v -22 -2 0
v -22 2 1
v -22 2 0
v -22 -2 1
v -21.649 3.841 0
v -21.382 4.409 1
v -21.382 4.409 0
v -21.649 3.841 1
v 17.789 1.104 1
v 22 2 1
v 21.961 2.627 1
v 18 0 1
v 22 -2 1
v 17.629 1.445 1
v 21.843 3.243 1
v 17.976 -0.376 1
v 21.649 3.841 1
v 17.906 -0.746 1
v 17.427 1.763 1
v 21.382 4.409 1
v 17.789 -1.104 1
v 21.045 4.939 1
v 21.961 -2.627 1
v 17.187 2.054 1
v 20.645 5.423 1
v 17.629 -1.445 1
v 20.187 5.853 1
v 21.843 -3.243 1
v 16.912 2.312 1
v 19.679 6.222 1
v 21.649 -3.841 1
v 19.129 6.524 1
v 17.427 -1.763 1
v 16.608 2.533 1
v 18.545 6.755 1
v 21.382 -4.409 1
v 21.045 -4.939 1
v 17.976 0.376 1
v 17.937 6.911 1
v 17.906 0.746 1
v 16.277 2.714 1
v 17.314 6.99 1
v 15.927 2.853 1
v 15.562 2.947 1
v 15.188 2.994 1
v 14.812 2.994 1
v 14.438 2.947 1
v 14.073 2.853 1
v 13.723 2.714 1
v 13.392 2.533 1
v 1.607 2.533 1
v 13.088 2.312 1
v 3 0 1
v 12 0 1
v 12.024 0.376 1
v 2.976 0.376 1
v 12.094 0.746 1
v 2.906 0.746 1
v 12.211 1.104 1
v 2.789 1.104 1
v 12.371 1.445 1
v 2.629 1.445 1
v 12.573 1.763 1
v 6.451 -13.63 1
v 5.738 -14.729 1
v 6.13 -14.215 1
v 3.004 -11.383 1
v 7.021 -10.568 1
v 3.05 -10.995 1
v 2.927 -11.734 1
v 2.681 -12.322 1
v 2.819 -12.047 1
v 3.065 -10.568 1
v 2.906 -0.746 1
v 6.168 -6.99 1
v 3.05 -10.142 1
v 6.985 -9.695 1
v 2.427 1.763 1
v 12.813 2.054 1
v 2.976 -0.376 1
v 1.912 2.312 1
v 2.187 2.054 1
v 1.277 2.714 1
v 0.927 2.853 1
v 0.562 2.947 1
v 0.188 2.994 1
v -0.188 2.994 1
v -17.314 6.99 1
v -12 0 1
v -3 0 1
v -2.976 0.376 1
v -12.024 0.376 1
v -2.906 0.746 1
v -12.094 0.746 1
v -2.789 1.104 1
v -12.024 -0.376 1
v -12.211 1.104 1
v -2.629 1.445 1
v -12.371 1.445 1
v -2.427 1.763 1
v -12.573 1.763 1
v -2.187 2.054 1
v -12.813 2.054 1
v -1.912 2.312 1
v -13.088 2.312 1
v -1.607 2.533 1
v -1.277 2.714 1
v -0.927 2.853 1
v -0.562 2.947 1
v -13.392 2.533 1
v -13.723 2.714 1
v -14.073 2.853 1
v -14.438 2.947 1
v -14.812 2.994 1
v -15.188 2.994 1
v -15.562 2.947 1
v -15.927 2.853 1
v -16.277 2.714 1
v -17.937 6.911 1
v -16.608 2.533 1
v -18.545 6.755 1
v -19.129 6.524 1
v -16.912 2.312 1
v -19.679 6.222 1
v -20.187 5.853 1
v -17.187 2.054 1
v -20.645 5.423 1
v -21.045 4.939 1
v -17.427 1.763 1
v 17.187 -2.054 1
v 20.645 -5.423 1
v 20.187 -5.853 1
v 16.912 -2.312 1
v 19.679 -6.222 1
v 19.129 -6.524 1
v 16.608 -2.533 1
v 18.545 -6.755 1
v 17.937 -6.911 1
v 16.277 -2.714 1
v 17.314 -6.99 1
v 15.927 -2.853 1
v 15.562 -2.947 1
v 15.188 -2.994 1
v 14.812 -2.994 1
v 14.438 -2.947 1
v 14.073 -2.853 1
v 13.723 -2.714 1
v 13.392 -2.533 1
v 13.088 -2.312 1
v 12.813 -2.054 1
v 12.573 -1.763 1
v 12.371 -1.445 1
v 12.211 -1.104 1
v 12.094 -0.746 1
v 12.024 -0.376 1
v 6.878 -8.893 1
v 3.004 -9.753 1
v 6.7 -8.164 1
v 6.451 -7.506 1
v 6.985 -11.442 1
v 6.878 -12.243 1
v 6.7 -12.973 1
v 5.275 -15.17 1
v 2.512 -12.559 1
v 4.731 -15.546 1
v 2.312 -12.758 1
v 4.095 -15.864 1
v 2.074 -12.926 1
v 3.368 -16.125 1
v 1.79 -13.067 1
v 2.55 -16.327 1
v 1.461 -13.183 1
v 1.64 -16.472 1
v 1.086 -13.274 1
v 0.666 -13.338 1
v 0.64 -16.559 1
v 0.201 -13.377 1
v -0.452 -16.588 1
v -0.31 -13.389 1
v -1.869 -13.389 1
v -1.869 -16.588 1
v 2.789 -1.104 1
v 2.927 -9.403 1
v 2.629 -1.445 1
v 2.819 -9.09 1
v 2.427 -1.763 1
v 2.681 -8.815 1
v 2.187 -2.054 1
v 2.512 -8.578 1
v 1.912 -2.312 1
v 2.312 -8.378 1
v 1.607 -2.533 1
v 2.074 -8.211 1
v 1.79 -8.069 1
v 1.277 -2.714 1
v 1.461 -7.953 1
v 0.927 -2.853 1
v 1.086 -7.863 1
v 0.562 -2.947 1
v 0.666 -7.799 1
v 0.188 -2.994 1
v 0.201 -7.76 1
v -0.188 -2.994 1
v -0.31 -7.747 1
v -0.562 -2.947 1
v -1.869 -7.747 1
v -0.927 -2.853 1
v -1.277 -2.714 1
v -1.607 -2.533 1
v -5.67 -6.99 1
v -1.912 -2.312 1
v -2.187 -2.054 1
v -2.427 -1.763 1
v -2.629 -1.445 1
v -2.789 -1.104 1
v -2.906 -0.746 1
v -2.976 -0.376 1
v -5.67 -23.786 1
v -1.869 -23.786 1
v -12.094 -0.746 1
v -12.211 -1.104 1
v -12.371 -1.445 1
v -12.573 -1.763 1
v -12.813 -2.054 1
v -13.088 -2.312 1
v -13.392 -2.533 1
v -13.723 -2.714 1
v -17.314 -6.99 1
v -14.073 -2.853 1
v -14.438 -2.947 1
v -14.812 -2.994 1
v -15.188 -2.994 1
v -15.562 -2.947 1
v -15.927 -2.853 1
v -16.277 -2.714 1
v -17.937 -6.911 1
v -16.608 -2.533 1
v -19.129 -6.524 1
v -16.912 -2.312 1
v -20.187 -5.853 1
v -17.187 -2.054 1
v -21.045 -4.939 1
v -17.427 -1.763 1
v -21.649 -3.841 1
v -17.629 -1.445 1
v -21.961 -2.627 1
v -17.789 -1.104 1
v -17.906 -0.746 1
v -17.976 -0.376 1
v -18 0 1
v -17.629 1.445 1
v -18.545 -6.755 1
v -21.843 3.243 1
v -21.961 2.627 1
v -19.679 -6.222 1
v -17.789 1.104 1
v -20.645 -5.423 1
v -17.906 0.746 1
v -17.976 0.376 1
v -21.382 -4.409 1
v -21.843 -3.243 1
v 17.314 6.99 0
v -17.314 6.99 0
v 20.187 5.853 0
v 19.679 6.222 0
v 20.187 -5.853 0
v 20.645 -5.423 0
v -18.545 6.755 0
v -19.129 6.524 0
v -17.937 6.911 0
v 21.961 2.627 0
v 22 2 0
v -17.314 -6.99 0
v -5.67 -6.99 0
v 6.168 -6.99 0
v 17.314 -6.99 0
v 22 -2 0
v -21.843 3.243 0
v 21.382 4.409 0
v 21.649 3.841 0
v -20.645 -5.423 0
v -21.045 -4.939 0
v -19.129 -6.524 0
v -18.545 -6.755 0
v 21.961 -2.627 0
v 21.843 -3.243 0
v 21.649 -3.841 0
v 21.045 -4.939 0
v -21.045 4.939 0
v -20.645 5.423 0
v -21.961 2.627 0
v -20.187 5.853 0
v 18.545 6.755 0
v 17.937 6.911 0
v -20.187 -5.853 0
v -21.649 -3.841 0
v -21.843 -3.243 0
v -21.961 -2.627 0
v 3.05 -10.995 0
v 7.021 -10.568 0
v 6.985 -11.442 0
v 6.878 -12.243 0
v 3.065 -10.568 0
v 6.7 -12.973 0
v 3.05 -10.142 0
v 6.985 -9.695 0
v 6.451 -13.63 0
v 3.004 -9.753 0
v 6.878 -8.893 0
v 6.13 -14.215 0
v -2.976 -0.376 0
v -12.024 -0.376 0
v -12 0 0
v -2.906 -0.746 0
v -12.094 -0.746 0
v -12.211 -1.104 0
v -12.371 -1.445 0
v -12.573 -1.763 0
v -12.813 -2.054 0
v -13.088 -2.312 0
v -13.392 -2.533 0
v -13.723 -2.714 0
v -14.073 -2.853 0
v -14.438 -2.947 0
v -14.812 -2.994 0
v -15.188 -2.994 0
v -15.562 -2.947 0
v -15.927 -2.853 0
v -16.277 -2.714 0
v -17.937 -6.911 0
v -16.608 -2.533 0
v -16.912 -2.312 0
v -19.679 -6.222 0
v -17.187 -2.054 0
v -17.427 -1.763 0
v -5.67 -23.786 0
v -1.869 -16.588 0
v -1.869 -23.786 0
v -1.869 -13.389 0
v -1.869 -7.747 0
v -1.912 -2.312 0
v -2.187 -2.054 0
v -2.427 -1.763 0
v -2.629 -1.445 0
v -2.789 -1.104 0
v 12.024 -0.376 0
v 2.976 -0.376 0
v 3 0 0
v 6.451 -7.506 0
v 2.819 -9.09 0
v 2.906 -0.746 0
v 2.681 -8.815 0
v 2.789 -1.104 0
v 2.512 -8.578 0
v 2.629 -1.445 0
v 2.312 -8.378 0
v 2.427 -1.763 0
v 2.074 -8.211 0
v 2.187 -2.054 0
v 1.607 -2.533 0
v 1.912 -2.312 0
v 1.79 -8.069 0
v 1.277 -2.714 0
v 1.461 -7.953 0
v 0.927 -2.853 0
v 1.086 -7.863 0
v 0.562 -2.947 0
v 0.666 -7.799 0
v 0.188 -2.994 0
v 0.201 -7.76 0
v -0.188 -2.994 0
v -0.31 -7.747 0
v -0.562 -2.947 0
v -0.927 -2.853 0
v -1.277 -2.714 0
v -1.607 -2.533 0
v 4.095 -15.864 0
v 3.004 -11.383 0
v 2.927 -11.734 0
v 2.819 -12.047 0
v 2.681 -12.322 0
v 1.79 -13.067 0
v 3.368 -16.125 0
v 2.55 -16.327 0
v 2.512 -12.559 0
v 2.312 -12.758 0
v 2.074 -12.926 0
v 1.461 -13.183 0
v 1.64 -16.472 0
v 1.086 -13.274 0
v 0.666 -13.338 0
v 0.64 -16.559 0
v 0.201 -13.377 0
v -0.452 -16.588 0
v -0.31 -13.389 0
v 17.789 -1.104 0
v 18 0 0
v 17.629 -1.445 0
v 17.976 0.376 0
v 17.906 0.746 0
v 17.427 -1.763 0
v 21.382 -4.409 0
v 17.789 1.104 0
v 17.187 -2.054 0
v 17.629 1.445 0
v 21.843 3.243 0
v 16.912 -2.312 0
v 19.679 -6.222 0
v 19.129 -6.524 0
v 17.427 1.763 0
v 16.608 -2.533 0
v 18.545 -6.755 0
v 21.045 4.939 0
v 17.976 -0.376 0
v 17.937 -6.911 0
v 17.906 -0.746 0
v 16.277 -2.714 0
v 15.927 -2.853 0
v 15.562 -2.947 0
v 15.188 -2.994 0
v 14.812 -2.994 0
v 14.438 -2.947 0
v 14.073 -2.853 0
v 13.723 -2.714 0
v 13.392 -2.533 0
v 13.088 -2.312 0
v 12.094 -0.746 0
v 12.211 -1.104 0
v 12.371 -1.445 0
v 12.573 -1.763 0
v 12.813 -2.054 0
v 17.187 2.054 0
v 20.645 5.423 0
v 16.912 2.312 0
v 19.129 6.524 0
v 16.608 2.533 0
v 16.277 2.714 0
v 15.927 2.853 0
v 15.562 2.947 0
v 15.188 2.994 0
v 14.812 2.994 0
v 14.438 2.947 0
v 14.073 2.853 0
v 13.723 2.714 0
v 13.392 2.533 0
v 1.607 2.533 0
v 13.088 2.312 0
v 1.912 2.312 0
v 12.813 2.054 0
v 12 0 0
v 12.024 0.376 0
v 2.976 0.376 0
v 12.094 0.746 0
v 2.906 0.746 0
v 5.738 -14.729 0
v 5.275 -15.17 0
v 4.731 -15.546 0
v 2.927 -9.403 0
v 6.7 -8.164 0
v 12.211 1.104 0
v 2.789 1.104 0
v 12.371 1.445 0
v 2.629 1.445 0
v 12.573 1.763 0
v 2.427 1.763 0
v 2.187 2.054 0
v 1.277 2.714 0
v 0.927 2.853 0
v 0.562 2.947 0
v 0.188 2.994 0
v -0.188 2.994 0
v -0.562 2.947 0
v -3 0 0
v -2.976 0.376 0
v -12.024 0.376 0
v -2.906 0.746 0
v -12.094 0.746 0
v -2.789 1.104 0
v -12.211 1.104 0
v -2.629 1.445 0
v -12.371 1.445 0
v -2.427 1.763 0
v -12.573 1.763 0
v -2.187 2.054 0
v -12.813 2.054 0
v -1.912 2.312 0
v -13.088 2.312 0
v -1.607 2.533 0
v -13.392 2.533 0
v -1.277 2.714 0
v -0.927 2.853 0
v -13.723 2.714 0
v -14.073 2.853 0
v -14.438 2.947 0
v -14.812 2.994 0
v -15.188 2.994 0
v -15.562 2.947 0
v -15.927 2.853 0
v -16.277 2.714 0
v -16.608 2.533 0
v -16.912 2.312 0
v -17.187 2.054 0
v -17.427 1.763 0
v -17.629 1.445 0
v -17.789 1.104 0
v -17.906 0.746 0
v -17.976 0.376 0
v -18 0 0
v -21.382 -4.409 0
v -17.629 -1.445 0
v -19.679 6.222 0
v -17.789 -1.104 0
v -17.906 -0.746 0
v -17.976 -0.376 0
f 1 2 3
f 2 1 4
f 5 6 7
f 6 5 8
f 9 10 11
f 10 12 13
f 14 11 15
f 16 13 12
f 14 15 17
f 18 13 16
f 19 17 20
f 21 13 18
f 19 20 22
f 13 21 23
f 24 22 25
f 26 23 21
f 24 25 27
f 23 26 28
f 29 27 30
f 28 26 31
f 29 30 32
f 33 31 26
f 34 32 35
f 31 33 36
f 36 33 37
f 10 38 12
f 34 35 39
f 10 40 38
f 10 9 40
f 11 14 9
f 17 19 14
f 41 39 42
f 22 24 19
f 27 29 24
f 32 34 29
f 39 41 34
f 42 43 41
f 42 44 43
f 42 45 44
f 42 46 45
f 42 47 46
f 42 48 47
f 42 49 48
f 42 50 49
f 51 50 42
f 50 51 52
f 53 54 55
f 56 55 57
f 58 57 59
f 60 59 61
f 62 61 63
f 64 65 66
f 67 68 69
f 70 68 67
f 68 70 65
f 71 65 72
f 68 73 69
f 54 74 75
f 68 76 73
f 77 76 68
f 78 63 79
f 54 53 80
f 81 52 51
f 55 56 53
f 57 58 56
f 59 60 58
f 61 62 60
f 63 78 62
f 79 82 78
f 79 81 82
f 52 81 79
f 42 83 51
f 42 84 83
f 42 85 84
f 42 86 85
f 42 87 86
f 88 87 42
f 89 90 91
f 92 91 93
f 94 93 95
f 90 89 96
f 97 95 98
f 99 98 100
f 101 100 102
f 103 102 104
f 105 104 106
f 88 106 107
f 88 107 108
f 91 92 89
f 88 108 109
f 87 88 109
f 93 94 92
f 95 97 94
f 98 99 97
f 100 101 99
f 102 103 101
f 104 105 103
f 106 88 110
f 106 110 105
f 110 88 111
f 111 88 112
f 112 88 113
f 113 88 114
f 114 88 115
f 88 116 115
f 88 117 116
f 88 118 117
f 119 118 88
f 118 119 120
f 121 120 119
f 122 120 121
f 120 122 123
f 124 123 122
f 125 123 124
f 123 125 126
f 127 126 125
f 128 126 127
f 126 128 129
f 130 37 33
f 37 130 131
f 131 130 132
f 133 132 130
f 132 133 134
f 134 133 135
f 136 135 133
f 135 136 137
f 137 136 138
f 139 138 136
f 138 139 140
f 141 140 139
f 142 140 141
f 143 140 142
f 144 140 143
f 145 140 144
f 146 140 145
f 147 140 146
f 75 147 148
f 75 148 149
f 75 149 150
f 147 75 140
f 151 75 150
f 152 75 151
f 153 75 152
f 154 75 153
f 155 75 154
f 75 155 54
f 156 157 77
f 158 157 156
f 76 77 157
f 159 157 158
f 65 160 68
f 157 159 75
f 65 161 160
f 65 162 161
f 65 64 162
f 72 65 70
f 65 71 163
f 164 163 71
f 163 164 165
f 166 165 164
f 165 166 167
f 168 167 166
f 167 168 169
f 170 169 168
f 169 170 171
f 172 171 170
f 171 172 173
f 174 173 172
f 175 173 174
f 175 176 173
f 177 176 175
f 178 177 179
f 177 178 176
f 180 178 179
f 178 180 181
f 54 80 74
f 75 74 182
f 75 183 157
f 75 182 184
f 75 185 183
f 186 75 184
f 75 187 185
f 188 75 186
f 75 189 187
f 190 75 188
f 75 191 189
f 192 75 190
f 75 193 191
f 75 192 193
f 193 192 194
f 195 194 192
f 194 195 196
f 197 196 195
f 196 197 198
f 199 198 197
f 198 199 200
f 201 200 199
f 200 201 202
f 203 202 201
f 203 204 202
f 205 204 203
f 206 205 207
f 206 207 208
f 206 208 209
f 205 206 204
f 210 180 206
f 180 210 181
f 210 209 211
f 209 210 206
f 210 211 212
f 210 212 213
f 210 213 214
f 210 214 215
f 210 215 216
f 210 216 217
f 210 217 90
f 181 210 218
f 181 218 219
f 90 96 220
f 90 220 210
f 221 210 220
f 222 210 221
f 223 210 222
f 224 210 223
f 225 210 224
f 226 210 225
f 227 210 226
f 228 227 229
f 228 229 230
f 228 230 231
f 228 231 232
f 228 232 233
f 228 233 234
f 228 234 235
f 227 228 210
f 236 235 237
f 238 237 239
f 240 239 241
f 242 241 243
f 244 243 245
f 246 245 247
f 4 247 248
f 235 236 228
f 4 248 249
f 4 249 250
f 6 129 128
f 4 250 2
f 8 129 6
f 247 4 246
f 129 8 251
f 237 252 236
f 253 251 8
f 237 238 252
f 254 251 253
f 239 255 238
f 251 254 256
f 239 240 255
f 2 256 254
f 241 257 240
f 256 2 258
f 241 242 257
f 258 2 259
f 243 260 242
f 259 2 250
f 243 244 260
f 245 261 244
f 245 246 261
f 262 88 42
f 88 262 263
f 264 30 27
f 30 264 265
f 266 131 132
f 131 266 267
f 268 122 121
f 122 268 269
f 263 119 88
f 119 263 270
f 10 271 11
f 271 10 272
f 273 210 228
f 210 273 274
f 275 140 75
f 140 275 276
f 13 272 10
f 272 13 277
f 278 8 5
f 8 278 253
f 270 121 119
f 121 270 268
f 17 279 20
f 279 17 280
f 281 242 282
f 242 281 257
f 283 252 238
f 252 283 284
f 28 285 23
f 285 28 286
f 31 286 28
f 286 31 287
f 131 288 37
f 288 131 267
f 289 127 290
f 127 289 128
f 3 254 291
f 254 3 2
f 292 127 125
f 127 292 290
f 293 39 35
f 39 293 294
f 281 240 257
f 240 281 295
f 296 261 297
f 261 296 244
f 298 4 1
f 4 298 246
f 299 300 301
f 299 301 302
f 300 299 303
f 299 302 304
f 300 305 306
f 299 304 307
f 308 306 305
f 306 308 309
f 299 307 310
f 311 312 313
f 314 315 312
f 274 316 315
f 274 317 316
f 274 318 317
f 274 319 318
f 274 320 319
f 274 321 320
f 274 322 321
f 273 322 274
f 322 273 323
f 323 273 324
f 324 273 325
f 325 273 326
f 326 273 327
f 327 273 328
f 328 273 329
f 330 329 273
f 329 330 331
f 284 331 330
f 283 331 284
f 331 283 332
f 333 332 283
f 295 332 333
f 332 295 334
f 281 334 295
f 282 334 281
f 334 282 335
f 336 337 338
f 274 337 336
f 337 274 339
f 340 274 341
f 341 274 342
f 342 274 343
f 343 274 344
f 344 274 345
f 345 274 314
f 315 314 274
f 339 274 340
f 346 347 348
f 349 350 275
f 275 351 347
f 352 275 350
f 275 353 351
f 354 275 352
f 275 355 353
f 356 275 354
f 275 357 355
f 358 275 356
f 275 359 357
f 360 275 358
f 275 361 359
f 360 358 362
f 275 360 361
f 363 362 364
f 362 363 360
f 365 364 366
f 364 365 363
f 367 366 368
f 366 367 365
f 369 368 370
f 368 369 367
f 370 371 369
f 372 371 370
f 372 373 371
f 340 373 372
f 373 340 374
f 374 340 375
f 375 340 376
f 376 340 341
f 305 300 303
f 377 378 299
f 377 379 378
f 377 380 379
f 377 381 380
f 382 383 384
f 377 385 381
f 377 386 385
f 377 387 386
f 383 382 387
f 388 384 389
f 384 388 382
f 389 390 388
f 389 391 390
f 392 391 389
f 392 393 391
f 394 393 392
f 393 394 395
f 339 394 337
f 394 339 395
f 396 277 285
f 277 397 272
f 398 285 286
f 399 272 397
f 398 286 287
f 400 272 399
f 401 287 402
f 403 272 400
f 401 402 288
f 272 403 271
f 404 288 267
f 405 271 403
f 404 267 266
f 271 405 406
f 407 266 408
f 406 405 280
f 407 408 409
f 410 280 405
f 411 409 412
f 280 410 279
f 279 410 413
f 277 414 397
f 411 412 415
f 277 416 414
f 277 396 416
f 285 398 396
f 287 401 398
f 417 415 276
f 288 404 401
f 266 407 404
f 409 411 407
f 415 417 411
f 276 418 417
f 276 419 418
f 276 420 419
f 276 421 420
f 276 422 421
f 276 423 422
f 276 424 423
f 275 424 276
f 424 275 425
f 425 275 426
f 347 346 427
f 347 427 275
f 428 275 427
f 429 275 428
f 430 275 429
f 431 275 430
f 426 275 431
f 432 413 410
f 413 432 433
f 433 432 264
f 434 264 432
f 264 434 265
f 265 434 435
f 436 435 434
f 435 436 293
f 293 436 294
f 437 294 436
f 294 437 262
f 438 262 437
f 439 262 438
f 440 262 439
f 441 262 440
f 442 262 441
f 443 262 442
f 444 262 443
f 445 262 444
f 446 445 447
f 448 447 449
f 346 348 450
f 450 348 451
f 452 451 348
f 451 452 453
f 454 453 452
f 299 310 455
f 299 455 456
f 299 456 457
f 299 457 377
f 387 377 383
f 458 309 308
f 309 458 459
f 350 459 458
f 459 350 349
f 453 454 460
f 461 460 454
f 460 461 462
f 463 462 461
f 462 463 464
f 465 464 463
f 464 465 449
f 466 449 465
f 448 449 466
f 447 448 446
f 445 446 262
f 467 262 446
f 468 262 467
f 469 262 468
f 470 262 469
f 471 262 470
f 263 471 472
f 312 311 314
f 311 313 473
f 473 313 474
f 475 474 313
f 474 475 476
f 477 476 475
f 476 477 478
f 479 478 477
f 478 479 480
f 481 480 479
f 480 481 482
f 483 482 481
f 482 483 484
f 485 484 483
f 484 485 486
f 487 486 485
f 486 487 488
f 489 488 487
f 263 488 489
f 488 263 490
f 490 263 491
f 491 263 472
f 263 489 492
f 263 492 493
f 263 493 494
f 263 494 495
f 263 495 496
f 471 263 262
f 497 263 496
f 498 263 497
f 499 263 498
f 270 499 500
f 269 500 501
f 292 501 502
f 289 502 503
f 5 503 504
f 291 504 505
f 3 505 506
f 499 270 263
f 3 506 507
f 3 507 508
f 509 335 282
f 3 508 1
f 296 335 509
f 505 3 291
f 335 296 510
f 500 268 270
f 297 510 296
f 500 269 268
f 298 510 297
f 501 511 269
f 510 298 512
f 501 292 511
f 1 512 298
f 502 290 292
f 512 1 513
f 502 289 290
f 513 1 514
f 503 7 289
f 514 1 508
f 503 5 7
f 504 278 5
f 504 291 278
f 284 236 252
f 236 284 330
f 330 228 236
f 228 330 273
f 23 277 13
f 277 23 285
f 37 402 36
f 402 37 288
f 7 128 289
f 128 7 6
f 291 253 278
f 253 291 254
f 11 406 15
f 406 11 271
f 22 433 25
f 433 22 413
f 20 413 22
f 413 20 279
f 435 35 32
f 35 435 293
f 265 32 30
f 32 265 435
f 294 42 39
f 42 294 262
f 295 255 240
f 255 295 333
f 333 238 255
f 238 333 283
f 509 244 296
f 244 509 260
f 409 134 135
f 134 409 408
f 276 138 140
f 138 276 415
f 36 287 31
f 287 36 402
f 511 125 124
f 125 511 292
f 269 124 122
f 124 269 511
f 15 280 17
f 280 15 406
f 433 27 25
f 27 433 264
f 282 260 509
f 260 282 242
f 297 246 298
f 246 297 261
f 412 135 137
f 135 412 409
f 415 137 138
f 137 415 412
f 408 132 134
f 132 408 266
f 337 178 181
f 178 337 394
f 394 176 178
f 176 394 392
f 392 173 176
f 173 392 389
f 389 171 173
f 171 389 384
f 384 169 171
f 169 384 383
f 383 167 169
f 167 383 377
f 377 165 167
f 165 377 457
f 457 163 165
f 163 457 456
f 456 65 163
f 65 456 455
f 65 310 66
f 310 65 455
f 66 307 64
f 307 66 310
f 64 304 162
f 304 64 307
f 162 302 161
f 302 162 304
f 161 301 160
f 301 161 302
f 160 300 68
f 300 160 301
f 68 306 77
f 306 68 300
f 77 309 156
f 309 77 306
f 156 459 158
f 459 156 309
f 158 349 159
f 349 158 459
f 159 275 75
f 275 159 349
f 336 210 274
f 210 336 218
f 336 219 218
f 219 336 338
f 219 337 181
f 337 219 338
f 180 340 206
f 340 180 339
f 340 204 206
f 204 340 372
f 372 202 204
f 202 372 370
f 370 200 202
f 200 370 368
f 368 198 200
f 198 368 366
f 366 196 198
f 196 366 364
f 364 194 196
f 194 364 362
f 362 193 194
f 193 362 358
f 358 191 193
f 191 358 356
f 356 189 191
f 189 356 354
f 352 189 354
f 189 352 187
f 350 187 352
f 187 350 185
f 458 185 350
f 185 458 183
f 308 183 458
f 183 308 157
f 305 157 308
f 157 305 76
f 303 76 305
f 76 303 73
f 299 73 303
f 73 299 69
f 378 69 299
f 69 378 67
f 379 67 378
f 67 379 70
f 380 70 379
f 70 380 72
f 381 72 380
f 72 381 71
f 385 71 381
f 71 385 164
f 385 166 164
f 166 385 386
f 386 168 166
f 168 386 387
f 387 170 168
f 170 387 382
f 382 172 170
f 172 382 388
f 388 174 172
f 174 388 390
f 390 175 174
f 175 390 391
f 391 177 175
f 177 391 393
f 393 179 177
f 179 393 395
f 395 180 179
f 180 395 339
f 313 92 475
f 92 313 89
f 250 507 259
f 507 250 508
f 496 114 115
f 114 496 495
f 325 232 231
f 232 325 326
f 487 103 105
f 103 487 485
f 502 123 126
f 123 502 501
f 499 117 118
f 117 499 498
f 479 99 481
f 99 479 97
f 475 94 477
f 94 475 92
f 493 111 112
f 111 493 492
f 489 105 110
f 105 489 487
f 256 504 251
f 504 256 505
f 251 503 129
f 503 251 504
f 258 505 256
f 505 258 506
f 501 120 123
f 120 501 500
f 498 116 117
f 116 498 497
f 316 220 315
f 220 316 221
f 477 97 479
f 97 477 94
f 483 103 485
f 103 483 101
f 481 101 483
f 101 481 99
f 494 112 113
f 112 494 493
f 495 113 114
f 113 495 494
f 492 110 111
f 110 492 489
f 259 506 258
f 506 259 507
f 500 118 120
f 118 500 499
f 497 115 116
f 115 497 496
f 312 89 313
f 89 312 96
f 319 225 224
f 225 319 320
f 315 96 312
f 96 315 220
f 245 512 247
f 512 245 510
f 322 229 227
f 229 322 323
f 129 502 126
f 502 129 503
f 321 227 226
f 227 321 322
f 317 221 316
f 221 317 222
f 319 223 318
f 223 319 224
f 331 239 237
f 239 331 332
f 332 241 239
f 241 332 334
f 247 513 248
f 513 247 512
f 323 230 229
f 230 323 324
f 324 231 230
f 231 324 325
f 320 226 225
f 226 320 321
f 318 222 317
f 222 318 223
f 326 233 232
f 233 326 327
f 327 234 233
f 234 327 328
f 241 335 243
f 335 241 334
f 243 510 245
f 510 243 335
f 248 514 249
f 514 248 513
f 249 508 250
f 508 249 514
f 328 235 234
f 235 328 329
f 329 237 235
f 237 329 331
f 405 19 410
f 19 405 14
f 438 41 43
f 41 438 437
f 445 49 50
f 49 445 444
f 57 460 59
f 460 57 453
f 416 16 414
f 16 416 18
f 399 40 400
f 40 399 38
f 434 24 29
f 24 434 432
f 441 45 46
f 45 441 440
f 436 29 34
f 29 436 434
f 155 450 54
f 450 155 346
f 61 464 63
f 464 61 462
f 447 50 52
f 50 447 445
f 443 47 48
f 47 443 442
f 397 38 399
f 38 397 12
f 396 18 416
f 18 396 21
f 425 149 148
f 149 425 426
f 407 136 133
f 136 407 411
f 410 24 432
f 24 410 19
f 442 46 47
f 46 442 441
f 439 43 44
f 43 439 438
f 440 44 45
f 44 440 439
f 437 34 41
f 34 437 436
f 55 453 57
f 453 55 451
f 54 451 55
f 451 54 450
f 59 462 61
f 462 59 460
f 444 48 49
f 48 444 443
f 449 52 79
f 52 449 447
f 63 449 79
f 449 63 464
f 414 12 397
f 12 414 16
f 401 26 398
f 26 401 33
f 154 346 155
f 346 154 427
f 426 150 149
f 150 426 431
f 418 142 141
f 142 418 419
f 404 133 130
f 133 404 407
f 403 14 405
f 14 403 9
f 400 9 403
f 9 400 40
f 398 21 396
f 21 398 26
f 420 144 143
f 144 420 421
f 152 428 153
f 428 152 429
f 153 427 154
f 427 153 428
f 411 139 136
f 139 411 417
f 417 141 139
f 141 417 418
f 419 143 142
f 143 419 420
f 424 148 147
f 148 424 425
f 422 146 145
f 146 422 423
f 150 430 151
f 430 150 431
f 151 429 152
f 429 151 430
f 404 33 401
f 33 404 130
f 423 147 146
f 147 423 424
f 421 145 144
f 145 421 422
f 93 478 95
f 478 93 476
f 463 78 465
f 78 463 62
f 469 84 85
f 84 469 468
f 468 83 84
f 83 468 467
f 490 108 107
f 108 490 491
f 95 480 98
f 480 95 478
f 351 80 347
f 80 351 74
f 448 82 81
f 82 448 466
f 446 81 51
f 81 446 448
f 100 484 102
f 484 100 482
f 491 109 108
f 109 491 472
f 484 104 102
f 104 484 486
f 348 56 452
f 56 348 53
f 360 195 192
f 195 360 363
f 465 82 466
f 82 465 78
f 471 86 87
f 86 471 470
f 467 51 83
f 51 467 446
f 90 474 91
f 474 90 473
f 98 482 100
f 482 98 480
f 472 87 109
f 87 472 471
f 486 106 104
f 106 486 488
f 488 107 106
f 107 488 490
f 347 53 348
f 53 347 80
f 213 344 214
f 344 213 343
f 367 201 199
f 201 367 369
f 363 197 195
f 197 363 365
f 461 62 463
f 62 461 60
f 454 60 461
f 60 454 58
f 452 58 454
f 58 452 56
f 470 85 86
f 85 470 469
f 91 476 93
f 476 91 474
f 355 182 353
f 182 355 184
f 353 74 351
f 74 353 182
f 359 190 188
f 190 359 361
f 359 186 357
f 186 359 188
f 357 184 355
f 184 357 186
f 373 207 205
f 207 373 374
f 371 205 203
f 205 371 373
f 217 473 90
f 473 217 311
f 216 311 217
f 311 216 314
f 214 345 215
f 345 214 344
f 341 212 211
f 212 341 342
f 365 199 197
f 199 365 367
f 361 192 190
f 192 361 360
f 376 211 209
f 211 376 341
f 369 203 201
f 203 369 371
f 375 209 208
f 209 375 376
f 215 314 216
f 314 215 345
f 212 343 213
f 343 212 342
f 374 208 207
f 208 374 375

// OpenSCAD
$fn = 50;


difference() {
	union() {
		translate(v = [0, 0, 0]) {
			rotate(a = [0, 0, 0]) {
				hull() {
					translate(v = [-17.0000000000, 2.0000000000, 0]) {
						rotate(a = [0, 0, 0]) {
							translate(v = [0, 0, 0]) {
								rotate(a = [0, 0, 0]) {
									cylinder(h = 1, r = 5);
								}
							}
						}
					}
					translate(v = [17.0000000000, 2.0000000000, 0]) {
						rotate(a = [0, 0, 0]) {
							translate(v = [0, 0, 0]) {
								rotate(a = [0, 0, 0]) {
									cylinder(h = 1, r = 5);
								}
							}
						}
					}
					translate(v = [-17.0000000000, -2.0000000000, 0]) {
						rotate(a = [0, 0, 0]) {
							translate(v = [0, 0, 0]) {
								rotate(a = [0, 0, 0]) {
									cylinder(h = 1, r = 5);
								}
							}
						}
					}
					translate(v = [17.0000000000, -2.0000000000, 0]) {
						rotate(a = [0, 0, 0]) {
							translate(v = [0, 0, 0]) {
								rotate(a = [0, 0, 0]) {
									cylinder(h = 1, r = 5);
								}
							}
						}
					}
				}
			}
		}
		translate(v = [0, -5, 0]) {
			rotate(a = [0, 0, 0]) {
				linear_extrude(height = 1) {
					text(font = "DejaVu Sans Mono:style=Bold", halign = "center", size = 19.0000000000, text = "P", valign = "top");
				}
			}
		}
	}
	union() {
		translate(v = [-15.0000000000, 0.0000000000, -125.0000000000]) {
			rotate(a = [0, 0, 0]) {
				cylinder(h = 250, r = 3.0000000000);
			}
		}
		translate(v = [15.0000000000, 0.0000000000, -125.0000000000]) {
			rotate(a = [0, 0, 0]) {
				cylinder(h = 250, r = 3.0000000000);
			}
		}
		translate(v = [15.0000000000, 0.0000000000, -125.0000000000]) {
			rotate(a = [0, 0, 0]) {
				cylinder(h = 250, r = 3.0000000000);
			}
		}
		translate(v = [0, 0, -125.0000000000]) {
			rotate(a = [0, 0, 0]) {
				cylinder(h = 250, r = 3.0000000000);
			}
		}
	}
}
